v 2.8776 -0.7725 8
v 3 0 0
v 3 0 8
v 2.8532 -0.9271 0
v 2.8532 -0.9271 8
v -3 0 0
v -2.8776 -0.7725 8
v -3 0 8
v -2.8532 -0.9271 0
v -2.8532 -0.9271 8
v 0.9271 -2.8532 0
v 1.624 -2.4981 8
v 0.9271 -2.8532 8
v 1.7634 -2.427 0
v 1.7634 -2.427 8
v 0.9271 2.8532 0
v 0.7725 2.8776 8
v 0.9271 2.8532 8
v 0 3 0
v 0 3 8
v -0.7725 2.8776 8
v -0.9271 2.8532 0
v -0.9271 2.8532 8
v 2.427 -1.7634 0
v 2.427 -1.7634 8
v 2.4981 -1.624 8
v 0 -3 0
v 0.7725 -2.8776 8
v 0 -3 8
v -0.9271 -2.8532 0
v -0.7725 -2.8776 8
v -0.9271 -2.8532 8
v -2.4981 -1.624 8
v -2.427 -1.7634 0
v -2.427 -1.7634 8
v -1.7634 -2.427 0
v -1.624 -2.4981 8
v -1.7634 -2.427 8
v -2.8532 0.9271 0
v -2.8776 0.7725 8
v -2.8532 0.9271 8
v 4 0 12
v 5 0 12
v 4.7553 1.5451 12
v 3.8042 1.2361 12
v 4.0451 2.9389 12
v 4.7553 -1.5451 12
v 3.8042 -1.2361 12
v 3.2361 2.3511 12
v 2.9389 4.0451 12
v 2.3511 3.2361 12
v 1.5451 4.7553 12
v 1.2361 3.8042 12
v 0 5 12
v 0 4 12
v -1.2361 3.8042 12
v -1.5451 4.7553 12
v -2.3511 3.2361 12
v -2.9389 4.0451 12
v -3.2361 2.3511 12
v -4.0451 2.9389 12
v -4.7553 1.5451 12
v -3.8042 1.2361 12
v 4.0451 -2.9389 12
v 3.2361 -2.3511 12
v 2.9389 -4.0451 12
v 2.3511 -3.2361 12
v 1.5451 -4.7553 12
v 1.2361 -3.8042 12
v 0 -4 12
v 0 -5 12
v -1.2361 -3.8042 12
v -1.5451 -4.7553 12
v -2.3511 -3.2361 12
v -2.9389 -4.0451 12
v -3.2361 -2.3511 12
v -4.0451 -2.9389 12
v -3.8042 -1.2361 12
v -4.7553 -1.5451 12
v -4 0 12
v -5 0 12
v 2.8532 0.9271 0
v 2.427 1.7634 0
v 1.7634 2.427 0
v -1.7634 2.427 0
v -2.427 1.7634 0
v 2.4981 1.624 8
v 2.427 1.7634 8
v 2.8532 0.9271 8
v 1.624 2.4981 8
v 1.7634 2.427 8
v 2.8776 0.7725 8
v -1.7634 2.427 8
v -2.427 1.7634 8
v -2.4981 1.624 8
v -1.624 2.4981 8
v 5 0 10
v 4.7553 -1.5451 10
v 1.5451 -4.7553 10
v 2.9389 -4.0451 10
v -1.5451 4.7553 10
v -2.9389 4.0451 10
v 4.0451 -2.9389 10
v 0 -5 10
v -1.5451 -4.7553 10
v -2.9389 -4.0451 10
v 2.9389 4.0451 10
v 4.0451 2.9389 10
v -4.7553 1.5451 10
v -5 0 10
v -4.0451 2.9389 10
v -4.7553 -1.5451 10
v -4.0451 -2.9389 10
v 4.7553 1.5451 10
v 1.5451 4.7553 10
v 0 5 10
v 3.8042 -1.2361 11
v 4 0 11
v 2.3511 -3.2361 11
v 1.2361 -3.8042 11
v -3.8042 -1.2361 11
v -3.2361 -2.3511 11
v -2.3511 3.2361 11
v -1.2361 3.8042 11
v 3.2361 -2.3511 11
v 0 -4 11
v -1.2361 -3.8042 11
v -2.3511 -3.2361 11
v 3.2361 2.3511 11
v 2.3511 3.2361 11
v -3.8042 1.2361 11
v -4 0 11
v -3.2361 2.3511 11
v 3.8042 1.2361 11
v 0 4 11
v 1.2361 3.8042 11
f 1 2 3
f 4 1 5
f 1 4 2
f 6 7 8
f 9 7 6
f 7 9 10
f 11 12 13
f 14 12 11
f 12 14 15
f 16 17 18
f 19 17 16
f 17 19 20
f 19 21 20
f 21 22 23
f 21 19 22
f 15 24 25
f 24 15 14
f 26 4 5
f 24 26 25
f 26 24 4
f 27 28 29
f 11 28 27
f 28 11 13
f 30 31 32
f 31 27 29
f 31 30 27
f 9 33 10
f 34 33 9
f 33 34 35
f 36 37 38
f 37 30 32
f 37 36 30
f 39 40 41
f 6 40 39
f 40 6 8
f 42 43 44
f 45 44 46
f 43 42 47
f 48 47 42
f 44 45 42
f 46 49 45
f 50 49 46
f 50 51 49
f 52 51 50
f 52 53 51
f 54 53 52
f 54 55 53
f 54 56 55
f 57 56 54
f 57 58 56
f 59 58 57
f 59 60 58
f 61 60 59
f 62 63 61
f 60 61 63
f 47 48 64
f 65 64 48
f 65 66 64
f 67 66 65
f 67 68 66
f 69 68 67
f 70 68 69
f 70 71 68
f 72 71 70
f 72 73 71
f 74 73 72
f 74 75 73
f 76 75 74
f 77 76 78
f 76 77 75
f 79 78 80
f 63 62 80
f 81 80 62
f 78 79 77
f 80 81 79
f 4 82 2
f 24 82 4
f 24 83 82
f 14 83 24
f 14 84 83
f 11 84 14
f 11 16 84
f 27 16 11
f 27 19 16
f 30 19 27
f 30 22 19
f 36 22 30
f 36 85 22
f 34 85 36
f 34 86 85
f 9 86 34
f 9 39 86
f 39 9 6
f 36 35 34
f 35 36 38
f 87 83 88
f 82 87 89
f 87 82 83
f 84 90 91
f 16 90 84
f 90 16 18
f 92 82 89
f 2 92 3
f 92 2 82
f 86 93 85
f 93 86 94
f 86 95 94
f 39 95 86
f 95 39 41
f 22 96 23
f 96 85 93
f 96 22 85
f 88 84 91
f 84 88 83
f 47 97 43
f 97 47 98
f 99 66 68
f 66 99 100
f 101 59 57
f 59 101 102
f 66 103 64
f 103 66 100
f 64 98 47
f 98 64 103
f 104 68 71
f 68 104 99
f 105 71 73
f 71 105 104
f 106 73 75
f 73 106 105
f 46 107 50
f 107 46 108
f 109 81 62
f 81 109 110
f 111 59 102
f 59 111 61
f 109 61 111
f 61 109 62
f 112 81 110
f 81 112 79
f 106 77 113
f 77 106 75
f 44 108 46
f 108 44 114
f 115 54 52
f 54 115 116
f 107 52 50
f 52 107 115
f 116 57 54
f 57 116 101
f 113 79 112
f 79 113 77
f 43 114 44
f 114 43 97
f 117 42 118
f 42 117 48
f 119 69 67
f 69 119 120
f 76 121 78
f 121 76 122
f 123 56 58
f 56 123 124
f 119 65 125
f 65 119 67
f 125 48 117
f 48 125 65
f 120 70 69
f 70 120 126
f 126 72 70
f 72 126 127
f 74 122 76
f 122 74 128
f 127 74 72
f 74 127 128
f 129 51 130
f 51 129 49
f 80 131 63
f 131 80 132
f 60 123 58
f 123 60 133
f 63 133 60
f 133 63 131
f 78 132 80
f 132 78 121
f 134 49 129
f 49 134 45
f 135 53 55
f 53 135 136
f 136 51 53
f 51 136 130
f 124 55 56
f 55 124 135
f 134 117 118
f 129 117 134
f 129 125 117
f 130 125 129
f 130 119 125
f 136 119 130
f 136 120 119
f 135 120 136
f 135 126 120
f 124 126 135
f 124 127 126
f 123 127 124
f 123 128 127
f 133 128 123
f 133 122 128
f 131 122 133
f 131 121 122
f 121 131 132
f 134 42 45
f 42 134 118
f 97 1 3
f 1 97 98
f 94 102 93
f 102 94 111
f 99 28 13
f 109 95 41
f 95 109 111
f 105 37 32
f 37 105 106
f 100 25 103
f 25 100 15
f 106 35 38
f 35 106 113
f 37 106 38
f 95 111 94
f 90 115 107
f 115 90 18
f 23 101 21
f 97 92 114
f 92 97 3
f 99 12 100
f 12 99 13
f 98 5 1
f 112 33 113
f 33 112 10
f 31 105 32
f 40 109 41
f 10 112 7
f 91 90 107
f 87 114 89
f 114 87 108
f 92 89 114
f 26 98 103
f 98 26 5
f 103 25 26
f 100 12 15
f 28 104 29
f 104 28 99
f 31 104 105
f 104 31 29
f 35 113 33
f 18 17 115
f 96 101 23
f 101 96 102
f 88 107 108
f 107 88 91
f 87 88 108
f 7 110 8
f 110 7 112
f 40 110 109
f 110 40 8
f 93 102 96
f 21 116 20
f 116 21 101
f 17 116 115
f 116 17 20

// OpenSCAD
rotate([180,0,0])
    translate([0,0,-12]){
        difference(){
            union(){
                cylinder(h=12, r=3, $fn=20);
                cylinder(h=2, r=5, $fn=20);
            }
            translate([0,0,-1])
                cylinder(h=2, r=4, $fn=20);
        }
        translate([0,0,2])
            cylinder(h=4, r1=5, r2=1, $fn=20);
    }
